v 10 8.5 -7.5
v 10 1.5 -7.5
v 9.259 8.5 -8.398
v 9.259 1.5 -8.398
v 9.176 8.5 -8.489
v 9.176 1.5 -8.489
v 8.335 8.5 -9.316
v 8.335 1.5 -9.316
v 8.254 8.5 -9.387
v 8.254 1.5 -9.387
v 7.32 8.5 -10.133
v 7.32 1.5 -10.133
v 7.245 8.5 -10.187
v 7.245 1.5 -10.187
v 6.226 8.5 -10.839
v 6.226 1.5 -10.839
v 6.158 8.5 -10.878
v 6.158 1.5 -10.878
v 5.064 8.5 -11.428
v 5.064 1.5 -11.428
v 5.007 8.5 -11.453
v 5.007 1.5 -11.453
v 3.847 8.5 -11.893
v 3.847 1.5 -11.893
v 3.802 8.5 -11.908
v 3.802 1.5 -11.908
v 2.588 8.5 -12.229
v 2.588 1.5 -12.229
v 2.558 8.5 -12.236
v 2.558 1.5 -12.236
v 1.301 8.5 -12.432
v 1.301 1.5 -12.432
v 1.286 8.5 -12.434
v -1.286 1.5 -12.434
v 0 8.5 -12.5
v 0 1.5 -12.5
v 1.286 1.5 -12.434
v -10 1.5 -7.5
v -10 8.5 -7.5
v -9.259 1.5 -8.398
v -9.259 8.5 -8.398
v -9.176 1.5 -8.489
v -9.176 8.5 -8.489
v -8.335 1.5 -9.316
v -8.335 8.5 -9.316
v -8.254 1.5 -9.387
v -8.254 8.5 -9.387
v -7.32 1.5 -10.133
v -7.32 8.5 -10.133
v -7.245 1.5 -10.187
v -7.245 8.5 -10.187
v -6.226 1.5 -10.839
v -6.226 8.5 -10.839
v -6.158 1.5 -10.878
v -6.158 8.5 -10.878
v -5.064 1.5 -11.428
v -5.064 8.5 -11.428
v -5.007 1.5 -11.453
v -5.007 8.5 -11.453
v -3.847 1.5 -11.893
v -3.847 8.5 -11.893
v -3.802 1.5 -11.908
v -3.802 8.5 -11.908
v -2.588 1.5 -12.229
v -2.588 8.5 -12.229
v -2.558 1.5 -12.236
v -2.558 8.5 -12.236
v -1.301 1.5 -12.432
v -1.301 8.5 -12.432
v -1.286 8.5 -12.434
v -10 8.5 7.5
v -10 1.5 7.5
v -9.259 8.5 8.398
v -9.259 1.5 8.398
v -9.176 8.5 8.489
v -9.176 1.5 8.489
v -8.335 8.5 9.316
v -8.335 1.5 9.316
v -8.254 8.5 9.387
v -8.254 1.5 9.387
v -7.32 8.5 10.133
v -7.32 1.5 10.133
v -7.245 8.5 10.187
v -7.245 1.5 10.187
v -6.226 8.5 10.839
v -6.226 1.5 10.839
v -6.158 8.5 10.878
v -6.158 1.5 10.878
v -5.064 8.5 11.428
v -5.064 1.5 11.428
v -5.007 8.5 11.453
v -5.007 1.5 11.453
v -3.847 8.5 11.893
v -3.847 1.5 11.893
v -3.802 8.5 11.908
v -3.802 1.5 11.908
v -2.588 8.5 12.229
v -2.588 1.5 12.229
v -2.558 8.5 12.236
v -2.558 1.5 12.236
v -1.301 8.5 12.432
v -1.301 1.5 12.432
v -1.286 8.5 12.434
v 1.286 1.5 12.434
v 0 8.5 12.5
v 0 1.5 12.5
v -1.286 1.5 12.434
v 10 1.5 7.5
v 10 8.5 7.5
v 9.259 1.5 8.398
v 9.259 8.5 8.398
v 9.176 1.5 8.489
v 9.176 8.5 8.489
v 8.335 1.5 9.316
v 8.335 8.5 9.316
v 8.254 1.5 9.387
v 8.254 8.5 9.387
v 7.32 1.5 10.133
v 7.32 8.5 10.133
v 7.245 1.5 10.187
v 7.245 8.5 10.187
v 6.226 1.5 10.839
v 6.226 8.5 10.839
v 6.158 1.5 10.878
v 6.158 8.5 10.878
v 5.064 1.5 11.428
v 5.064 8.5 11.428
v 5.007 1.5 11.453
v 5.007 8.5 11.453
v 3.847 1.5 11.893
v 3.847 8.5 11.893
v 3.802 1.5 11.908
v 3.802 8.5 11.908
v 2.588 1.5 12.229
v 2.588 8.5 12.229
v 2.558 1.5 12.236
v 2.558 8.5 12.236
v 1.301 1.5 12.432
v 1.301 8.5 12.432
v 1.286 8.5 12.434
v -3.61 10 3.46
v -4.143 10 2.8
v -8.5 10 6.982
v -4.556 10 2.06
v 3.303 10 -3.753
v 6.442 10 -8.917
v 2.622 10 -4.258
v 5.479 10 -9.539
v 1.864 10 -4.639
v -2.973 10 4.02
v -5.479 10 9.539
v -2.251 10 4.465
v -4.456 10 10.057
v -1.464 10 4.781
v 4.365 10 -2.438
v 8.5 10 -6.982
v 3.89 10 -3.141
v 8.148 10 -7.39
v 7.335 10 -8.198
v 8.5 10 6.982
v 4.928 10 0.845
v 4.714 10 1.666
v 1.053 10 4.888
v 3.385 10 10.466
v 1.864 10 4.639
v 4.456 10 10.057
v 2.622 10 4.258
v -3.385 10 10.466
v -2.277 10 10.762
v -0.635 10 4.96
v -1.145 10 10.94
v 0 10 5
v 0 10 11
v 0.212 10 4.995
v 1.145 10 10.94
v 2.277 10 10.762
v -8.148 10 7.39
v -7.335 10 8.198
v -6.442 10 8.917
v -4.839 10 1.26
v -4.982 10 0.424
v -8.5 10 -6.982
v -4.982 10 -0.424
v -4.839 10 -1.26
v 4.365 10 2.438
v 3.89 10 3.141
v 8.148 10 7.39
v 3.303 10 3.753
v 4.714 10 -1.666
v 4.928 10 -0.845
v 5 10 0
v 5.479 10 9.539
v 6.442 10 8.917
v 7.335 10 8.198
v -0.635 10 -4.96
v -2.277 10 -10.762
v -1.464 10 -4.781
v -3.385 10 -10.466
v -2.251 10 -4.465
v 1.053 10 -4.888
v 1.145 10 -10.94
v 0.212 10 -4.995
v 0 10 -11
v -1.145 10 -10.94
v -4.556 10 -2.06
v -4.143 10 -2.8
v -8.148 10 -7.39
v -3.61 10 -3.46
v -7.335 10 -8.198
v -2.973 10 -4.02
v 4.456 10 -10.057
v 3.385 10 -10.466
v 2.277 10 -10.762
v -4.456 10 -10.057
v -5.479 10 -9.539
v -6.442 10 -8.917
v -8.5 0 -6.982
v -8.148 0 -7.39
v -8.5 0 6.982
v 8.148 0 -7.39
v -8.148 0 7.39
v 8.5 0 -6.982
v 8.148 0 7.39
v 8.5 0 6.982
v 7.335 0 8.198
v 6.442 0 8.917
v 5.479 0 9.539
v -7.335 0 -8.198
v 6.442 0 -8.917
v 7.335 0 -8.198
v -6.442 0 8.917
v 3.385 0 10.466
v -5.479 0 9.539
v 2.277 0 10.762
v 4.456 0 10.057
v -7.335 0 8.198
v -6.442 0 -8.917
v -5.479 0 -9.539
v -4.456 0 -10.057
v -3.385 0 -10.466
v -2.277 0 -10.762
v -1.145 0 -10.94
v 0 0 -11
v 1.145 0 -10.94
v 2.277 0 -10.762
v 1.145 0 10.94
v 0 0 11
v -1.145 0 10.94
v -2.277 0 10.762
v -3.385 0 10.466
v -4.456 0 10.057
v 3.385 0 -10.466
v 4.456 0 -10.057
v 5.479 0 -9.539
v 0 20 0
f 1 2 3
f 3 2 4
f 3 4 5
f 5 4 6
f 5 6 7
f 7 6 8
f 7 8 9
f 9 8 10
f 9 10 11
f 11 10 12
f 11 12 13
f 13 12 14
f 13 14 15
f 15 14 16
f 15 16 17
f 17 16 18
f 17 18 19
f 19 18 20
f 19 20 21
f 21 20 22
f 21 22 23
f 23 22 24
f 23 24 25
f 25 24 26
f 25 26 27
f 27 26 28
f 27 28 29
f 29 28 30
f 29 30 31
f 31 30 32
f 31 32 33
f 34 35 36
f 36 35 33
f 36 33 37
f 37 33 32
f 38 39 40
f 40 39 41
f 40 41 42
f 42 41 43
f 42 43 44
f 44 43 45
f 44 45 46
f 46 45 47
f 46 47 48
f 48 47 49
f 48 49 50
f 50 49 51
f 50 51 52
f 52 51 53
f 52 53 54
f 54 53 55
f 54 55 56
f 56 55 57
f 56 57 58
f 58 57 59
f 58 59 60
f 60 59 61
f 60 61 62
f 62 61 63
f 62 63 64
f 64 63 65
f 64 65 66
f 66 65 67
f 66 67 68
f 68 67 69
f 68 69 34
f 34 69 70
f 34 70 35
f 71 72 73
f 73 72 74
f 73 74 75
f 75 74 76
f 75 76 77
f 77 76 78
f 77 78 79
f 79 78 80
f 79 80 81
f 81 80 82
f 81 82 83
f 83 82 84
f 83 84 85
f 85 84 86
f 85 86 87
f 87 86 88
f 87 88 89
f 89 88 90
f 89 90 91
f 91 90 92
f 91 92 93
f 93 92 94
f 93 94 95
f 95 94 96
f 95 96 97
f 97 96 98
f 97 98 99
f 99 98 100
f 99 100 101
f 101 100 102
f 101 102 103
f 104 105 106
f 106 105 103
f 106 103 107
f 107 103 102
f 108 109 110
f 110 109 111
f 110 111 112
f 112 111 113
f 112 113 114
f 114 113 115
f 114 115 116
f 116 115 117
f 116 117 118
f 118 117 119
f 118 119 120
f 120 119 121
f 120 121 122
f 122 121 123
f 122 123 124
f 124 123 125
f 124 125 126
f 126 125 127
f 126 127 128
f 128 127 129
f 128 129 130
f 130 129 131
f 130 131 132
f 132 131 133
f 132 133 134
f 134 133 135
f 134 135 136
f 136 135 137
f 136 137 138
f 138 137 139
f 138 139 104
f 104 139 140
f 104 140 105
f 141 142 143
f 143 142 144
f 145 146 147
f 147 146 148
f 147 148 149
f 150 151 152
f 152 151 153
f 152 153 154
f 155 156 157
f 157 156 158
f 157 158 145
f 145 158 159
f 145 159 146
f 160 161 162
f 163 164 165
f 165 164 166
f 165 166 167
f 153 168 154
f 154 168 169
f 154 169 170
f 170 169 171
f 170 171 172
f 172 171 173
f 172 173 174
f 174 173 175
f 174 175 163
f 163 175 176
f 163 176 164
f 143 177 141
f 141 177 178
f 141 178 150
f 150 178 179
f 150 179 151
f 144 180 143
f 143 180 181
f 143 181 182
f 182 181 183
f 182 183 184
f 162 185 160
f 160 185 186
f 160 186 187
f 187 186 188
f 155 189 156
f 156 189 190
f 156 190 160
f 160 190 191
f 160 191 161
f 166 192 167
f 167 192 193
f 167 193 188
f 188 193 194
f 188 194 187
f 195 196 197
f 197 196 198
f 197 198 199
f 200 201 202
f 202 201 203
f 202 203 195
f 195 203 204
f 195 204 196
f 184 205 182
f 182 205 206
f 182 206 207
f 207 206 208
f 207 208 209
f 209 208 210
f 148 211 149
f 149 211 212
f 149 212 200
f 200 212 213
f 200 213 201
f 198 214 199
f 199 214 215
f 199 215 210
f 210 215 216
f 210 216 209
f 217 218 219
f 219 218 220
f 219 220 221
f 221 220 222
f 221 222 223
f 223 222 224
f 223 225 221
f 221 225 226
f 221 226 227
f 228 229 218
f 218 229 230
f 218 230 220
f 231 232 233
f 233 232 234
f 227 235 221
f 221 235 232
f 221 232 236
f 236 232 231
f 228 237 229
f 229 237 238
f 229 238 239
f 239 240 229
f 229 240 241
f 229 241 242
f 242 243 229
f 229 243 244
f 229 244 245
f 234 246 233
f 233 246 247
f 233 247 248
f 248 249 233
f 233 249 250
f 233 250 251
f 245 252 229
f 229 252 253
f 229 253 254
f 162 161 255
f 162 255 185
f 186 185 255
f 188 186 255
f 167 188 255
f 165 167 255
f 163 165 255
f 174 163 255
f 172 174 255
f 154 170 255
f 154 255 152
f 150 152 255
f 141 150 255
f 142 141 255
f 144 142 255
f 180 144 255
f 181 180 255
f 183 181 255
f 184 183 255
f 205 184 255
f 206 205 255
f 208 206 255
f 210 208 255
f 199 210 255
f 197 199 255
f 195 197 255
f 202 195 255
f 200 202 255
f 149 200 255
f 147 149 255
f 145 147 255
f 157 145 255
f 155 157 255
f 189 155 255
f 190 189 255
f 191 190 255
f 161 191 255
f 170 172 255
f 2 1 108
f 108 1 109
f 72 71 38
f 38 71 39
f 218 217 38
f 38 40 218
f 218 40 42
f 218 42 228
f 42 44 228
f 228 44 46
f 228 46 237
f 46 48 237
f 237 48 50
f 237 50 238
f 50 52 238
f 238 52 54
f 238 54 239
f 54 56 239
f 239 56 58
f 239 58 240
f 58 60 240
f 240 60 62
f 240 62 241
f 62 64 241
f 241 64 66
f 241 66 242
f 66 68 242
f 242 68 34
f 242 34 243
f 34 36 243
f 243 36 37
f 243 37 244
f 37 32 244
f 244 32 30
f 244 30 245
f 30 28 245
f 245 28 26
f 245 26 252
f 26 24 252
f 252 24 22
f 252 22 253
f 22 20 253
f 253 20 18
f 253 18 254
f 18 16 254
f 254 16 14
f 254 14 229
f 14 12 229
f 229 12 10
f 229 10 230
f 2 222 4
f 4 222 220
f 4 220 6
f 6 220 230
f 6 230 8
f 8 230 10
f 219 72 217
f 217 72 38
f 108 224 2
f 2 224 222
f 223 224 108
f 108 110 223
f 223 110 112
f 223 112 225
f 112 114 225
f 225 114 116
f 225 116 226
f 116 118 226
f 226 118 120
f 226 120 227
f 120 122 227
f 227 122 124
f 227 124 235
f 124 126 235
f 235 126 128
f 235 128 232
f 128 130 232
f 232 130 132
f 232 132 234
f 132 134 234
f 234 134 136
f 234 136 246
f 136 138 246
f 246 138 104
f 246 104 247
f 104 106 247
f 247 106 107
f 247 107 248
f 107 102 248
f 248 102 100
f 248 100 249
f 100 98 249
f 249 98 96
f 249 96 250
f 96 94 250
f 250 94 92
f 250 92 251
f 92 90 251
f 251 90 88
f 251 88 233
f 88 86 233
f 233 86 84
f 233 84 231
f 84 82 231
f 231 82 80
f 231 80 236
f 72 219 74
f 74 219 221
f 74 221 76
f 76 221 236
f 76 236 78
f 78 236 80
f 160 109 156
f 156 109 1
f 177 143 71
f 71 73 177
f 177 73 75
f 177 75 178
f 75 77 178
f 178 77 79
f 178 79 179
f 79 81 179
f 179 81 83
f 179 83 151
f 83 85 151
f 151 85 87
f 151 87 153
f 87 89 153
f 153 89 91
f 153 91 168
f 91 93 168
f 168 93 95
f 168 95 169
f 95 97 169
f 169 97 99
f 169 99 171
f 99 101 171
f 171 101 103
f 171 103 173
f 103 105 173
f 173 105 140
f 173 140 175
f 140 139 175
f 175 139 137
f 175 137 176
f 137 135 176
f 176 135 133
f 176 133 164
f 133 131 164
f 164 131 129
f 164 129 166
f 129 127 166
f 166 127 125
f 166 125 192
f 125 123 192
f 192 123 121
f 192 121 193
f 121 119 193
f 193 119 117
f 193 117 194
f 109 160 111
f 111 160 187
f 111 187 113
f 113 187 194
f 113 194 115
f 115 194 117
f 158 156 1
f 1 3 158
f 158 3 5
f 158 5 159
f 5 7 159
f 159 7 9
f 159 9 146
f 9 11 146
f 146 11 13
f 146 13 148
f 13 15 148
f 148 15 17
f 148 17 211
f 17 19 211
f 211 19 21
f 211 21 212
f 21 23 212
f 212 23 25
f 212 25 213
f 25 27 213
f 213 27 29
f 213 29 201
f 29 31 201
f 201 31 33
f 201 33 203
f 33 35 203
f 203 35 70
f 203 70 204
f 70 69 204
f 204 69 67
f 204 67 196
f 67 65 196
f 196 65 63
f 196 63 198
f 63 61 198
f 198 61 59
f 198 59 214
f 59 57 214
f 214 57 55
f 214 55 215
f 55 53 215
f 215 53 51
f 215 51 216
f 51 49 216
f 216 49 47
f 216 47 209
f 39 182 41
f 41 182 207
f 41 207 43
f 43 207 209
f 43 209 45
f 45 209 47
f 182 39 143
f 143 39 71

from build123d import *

# Parameters (mm, degrees)
SKETCH1_R           = 12.5
BOSS_EXTRUDE2_DEPTH = 10
CUT_EXTRUDE1_REACH  = 28.693
CHAMFER1_SIZE       = 1.5


with BuildPart() as part:
    # Sketch1 → Boss-Extrude2 (new body)
    with BuildSketch(Plane(origin=(0, 0, 0), x_dir=(1, 0, 0), z_dir=(0, 1, 0))):
        with Locations(Location((0, 0, 0), (0, 0, 270))):
            Circle(SKETCH1_R)
    extrude(amount=BOSS_EXTRUDE2_DEPTH)

    # Sketch2 → Revolve1 (revolve)
    with BuildSketch(Plane.XY):
        Polygon((5, 10), (0, 20), (0, 10), align=None)
    revolve(axis=Axis((0, -1000, 0), (0, 1, 0)))

    # Sketch3 → Cut-Extrude1 (cut, up to next)
    with BuildSketch(Plane(origin=(0, 0, 0), x_dir=(1, 0, 0), z_dir=(0, 1, 0)), mode=Mode.PRIVATE) as cut_extrude1_sk1:
        with BuildLine():
            Line((-10, 7.5), (-10, -7.5))
            ThreePointArc((-10, -7.5), (-12.5, 0), (-10, 7.5))
        make_face()
    cut_extrude1_tool1 = extrude(cut_extrude1_sk1.sketch, amount=CUT_EXTRUDE1_REACH, mode=Mode.PRIVATE) & part.part
    # Sketch3 → Cut-Extrude1 (cut, up to next)
    with BuildSketch(Plane(origin=(0, 0, 0), x_dir=(1, 0, 0), z_dir=(0, 1, 0)), mode=Mode.PRIVATE) as cut_extrude1_sk2:
        with BuildLine():
            Line((10, 7.5), (10, -7.5))
            ThreePointArc((10, -7.5), (12.5, 0), (10, 7.5))
        make_face()
    cut_extrude1_tool2 = extrude(cut_extrude1_sk2.sketch, amount=CUT_EXTRUDE1_REACH, mode=Mode.PRIVATE) & part.part
    add(cut_extrude1_tool1.solids().sort_by_distance((-11.0091, 0, 0))[0], mode=Mode.SUBTRACT)
    add(cut_extrude1_tool2.solids().sort_by_distance((11.0091, 0, 0))[0], mode=Mode.SUBTRACT)

    # Chamfer1
    chamfer1_edges = [part.edges().sort_by_distance(p)[0] for p in [
        (0, 10, -12.5),
        (0, 10, 12.5),
        (-10, 0, 0),
        (-10, 10, 0),
        (10, 0, 0),
        (10, 10, 0),
        (0, 0, -12.5),
        (0, 0, 12.5),
    ]]
    chamfer(chamfer1_edges, length=CHAMFER1_SIZE)


solid = part.part
